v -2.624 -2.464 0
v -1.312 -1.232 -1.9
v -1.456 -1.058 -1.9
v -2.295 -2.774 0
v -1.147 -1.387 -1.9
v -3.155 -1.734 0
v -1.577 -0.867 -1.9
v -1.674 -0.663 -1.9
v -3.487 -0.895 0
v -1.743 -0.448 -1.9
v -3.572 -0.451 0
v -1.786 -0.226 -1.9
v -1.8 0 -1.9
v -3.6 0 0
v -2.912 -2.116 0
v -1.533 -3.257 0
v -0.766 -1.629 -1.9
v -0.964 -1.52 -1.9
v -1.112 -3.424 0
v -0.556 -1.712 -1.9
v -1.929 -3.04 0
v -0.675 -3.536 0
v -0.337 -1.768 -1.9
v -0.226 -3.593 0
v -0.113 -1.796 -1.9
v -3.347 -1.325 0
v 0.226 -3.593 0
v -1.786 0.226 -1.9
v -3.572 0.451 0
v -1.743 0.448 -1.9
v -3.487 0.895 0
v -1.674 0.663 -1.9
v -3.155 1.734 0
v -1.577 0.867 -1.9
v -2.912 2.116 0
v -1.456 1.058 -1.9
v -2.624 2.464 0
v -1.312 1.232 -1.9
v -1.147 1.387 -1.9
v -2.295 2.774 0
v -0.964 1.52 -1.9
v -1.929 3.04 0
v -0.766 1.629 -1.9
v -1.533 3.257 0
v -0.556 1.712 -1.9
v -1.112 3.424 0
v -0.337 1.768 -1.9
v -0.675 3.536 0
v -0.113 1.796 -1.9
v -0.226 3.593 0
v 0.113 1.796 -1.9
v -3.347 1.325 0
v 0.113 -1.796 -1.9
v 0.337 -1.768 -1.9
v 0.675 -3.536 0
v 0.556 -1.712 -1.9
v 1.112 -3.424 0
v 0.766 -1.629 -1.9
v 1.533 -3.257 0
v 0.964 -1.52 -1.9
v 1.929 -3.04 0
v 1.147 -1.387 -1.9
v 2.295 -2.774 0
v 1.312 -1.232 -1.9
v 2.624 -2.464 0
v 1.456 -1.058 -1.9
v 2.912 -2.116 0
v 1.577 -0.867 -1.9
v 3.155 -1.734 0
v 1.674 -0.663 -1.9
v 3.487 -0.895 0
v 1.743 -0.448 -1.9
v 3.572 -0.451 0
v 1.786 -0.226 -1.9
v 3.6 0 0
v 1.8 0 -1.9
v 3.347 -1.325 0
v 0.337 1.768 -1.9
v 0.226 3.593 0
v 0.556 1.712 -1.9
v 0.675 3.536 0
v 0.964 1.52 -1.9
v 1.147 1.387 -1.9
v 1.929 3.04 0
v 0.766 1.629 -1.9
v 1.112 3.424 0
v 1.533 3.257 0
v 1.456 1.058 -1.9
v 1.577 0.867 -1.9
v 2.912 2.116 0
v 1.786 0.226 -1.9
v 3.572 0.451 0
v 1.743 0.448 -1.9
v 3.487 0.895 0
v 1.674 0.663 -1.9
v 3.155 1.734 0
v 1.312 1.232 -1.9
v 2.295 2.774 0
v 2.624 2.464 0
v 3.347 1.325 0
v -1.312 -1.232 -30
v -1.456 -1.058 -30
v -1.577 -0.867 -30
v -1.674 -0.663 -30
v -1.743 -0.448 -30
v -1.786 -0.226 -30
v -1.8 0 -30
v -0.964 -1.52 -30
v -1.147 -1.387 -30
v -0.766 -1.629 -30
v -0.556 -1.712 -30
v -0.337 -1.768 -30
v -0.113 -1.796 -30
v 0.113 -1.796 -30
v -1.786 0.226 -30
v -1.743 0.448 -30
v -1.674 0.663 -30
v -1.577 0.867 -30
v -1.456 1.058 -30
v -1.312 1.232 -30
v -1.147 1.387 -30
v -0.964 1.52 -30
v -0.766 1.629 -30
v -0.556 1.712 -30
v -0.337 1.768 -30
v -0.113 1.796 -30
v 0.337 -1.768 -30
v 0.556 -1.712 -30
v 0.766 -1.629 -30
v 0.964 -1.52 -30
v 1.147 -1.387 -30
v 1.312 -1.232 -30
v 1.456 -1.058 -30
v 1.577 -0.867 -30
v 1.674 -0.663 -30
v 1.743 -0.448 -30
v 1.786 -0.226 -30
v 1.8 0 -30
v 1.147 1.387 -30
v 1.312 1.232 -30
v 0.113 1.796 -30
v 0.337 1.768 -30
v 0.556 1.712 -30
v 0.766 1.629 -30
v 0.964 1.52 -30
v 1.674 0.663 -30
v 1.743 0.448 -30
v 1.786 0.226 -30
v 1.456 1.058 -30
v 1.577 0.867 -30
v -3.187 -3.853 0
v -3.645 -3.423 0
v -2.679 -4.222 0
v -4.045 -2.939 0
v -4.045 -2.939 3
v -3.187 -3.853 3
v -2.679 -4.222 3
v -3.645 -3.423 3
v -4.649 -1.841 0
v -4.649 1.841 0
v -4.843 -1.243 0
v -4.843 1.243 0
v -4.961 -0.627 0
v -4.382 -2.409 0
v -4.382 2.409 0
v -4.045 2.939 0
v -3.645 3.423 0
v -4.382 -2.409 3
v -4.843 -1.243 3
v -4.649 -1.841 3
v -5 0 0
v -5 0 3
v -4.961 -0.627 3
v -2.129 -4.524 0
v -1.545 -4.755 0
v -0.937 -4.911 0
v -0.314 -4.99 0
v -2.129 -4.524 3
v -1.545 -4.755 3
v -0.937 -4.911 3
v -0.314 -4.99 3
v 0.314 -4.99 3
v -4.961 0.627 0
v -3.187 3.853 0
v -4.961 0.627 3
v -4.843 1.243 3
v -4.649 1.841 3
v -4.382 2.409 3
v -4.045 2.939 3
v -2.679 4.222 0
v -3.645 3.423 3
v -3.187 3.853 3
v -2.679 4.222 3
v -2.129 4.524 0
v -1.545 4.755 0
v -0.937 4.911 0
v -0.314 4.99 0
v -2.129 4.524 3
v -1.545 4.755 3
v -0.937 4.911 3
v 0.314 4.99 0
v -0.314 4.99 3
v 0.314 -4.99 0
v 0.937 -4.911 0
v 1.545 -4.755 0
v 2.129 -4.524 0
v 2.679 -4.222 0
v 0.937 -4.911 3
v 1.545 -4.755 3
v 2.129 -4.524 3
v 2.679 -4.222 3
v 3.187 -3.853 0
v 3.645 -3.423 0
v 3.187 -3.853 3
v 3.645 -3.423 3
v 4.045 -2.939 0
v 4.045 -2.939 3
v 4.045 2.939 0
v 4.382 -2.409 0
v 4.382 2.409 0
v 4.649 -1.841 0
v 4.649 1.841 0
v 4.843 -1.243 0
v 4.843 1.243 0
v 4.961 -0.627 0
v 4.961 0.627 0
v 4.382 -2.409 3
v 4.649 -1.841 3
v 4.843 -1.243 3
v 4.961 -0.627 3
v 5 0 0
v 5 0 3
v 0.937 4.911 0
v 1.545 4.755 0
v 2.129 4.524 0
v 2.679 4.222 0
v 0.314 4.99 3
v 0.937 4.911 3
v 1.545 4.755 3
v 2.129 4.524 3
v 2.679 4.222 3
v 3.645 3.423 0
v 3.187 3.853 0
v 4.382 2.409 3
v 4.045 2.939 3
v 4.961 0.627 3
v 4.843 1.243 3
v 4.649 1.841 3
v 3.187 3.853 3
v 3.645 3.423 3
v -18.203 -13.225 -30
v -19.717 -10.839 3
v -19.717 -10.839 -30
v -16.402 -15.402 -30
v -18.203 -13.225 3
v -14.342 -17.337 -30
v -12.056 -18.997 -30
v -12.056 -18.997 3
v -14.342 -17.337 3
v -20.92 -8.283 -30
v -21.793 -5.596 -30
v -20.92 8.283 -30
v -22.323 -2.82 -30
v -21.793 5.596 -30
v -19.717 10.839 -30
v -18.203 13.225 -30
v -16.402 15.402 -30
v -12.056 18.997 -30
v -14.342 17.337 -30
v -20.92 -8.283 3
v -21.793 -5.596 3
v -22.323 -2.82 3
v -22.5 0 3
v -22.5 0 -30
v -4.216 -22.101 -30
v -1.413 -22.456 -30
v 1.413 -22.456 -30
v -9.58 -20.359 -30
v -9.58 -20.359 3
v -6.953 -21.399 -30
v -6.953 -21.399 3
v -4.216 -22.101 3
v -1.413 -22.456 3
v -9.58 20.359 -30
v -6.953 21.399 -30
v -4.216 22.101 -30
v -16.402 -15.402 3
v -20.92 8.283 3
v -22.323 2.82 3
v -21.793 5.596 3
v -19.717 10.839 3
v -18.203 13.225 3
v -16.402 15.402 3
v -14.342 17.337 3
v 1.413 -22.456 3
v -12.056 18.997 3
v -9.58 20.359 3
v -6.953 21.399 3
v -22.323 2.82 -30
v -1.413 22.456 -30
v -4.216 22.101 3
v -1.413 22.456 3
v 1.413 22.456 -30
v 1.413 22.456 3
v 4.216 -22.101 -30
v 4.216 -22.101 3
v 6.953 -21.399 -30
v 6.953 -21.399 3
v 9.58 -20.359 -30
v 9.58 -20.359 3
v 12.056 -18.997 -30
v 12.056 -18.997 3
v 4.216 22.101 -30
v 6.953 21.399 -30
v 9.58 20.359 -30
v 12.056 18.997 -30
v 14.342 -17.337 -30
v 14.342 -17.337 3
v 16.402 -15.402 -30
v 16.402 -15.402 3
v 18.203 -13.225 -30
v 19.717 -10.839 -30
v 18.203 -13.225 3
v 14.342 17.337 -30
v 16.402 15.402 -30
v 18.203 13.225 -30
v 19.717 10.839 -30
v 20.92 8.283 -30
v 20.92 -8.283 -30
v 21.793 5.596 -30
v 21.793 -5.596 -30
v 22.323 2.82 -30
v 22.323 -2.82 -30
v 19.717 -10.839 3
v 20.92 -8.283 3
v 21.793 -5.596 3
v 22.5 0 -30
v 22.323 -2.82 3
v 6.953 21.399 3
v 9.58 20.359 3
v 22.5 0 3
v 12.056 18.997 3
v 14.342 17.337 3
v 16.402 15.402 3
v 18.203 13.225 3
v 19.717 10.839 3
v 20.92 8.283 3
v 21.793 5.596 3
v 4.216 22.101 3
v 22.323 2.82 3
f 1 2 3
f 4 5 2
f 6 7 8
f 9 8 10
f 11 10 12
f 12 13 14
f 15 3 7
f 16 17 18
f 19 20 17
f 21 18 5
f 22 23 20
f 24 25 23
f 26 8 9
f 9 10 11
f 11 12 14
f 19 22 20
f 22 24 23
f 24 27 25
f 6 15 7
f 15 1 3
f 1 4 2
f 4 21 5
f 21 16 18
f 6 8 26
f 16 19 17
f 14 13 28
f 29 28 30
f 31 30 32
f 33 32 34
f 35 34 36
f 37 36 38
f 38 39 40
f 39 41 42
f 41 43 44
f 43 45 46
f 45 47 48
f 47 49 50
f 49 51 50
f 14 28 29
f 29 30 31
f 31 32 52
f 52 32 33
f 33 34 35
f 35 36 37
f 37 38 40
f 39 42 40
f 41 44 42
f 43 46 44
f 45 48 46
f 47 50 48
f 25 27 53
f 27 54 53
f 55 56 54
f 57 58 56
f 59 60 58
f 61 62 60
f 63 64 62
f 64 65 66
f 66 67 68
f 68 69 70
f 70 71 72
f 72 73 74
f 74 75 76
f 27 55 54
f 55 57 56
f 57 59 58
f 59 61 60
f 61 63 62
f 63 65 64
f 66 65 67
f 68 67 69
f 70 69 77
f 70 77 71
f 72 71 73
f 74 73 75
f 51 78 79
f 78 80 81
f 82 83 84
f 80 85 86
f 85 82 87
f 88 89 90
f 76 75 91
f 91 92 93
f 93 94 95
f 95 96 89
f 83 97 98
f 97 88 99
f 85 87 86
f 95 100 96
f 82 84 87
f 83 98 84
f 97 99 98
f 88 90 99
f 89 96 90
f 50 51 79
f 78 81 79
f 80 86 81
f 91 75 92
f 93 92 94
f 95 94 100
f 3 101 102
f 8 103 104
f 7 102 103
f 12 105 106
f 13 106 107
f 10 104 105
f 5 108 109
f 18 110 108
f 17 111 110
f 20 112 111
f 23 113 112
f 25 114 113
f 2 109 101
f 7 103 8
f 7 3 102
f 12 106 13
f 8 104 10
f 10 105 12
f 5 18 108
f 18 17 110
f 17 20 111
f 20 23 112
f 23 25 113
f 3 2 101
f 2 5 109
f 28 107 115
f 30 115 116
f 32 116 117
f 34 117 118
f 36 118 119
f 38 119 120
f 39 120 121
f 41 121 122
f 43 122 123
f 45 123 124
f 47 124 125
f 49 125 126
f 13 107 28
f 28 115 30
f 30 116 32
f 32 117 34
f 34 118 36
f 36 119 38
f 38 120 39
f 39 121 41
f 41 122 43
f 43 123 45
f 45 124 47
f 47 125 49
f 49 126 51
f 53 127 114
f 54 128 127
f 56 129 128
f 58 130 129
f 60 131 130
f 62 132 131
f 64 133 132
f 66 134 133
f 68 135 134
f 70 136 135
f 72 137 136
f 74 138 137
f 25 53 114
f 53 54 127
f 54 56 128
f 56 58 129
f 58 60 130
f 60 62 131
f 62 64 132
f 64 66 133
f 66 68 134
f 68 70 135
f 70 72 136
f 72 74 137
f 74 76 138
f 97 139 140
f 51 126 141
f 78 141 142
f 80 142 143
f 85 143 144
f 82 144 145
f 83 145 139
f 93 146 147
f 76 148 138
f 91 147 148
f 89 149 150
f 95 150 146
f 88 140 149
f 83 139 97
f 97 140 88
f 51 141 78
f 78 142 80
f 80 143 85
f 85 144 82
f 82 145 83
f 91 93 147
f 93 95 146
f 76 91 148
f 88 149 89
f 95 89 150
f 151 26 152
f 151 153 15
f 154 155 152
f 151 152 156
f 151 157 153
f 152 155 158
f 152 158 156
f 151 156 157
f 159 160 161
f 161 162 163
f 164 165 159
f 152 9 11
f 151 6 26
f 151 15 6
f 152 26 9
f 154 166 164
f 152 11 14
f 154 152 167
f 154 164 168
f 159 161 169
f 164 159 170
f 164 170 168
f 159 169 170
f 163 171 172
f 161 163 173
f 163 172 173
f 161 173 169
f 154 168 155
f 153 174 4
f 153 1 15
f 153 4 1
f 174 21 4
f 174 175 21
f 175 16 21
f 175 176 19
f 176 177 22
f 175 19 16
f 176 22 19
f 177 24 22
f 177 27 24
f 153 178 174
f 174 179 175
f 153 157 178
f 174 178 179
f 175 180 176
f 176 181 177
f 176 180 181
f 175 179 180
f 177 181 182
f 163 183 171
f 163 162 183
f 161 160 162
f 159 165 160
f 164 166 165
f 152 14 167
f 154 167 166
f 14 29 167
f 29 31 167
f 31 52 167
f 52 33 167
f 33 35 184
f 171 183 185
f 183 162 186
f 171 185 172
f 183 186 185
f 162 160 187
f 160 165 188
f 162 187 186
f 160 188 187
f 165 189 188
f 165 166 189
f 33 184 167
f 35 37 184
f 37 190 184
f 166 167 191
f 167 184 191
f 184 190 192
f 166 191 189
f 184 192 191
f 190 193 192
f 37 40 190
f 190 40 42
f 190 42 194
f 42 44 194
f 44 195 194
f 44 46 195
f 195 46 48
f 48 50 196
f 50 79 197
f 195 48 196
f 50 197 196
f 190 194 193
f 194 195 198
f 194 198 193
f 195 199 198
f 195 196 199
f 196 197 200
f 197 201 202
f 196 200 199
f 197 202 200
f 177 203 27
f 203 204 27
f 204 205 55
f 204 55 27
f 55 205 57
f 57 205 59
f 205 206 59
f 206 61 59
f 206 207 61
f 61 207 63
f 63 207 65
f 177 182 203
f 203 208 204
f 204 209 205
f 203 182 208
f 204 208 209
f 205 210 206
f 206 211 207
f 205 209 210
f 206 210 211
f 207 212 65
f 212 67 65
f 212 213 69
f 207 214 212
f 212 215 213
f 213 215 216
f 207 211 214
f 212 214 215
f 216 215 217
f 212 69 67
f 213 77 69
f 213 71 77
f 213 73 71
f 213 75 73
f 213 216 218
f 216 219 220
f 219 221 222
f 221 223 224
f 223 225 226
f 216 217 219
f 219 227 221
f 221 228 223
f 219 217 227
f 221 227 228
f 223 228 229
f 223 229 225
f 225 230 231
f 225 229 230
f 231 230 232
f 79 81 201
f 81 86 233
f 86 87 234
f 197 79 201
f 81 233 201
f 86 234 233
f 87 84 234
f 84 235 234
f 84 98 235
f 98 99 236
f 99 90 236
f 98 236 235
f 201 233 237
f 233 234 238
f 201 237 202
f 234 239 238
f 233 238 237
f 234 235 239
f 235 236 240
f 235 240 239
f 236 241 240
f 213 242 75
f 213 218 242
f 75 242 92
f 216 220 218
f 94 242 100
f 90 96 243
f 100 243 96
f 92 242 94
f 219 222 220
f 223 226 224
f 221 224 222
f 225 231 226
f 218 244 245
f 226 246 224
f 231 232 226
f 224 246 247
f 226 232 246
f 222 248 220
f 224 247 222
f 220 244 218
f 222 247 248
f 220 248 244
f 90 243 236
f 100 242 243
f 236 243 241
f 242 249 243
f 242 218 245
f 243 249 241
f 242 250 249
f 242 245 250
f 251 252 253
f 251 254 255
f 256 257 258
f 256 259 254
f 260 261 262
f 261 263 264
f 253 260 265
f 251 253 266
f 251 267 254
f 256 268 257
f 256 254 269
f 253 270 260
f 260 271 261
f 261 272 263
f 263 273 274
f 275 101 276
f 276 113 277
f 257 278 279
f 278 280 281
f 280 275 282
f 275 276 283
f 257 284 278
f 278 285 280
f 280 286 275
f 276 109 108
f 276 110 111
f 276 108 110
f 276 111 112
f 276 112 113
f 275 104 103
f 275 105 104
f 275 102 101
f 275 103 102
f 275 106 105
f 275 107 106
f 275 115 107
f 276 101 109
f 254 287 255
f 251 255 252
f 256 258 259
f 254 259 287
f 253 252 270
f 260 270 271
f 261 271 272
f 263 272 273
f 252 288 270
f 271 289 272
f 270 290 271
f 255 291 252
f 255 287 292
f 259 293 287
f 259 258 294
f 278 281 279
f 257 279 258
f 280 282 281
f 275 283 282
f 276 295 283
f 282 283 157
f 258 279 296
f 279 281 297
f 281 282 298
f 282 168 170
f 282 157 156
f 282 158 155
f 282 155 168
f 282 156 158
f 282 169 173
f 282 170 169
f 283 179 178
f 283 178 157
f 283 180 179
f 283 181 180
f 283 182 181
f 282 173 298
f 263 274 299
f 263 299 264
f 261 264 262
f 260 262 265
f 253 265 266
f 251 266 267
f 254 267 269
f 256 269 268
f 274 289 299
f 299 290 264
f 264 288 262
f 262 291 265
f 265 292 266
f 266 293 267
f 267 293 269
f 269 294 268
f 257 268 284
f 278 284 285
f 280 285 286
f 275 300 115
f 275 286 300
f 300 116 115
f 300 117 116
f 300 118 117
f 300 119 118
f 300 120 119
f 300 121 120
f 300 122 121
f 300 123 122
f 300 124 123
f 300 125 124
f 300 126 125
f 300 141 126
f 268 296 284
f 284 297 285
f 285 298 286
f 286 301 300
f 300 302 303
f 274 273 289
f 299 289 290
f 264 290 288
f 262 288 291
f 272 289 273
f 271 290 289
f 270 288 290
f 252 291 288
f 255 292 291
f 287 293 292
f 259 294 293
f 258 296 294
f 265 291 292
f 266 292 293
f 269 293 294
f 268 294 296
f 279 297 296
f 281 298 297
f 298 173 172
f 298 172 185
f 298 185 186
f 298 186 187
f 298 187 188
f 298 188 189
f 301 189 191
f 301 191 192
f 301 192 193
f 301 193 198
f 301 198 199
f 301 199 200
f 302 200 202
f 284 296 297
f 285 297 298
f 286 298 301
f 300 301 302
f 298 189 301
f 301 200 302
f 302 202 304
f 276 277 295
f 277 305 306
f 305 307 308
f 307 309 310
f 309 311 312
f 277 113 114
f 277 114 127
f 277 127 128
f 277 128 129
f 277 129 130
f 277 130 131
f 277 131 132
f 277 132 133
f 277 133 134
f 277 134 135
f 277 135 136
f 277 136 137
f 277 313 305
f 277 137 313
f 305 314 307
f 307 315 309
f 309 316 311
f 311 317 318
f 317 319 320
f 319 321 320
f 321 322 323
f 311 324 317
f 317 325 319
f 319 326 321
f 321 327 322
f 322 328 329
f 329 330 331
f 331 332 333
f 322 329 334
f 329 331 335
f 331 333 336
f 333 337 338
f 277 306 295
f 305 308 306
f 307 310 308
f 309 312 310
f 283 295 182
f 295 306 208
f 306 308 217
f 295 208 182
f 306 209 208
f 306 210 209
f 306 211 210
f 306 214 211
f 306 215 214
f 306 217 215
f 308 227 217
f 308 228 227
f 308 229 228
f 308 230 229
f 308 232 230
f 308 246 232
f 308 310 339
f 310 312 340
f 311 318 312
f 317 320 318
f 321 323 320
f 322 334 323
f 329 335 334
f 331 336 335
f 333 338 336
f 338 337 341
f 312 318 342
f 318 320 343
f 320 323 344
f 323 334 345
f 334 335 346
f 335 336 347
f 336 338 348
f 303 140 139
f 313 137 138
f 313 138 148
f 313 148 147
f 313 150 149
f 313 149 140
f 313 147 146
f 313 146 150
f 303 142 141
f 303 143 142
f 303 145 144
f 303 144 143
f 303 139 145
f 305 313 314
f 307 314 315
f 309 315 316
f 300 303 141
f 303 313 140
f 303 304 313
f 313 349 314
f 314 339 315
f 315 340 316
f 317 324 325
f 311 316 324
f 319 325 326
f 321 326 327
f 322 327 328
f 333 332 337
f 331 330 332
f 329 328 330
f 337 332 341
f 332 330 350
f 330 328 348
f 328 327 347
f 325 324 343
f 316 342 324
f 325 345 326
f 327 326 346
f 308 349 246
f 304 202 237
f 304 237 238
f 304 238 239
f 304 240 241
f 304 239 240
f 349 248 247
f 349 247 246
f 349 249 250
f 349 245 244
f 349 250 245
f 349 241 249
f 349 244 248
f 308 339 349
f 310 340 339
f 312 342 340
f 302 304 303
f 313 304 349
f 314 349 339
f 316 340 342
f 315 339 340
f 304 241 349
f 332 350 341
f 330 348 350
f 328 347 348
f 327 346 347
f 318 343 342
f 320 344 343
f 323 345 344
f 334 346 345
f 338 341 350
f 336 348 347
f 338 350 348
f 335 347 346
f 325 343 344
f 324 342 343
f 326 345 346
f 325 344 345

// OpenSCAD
$fn = 50;

difference() {
	union() {
		translate(v = [0, 0, -30.0]) {
			cylinder(h = 33, r = 22.5);
		}
	}
	union() {
		translate(v = [0, 0, 0]) {
			rotate(a = [0, 0, 0]) {
				difference() {
					union() {
						translate(v = [0, 0, -33.0]) {
							cylinder(h = 33, r = 1.5);
						}
						translate(v = [0, 0, -1.9]) {
							cylinder(h = 1.9, r1 = 1.8, r2 = 3.6);
						}
						translate(v = [0, 0, -33.0]) {
							cylinder(h = 33, r = 1.8);
						}
						translate(v = [0, 0, -33.0]) {
							cylinder(h = 33, r = 1.5);
						}
					}
					union();
				}
			}
		}
		#cylinder(h = 3, r = 5.0);
	}
}
